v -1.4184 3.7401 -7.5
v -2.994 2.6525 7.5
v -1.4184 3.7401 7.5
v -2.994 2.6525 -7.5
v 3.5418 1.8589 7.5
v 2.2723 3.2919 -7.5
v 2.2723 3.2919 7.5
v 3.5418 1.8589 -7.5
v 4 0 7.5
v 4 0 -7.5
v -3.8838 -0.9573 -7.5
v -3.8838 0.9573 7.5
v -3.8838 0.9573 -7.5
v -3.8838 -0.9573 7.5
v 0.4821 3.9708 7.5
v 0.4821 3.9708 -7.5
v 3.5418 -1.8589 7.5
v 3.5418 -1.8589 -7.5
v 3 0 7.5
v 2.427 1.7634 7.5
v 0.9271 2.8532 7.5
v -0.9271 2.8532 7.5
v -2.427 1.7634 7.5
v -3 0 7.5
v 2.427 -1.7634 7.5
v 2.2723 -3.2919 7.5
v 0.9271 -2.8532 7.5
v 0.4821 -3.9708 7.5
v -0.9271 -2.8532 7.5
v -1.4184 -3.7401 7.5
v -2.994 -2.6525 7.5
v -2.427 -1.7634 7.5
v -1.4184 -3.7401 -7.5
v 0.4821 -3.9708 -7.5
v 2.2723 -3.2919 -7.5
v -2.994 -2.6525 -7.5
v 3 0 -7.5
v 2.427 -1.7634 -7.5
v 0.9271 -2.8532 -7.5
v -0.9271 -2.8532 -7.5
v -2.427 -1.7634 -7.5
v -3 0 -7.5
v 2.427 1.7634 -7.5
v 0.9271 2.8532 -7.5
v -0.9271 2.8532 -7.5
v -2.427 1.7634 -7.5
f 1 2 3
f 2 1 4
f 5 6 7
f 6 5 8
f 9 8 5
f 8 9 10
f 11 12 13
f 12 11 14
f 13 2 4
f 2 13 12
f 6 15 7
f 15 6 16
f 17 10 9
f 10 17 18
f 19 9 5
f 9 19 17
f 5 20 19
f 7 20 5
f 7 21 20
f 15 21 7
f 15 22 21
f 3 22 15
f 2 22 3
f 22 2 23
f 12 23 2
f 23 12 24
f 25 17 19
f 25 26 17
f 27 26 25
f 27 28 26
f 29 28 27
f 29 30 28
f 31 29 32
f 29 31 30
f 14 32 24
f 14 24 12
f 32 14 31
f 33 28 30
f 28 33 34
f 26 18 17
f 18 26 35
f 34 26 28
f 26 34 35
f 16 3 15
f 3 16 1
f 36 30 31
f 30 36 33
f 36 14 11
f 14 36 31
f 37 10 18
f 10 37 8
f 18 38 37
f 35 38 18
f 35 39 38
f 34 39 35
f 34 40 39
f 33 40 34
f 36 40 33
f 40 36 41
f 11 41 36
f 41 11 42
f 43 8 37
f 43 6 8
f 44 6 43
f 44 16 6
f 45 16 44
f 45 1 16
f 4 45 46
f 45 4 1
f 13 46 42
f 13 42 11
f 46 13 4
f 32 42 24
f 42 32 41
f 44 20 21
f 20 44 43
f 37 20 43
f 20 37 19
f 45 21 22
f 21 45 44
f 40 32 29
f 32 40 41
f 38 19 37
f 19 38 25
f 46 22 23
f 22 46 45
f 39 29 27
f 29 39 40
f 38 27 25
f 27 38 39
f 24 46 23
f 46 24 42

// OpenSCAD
difference () {
  cylinder (h=15, r=4, center=true);
  cylinder (h=20, r=3, center=true);
}
